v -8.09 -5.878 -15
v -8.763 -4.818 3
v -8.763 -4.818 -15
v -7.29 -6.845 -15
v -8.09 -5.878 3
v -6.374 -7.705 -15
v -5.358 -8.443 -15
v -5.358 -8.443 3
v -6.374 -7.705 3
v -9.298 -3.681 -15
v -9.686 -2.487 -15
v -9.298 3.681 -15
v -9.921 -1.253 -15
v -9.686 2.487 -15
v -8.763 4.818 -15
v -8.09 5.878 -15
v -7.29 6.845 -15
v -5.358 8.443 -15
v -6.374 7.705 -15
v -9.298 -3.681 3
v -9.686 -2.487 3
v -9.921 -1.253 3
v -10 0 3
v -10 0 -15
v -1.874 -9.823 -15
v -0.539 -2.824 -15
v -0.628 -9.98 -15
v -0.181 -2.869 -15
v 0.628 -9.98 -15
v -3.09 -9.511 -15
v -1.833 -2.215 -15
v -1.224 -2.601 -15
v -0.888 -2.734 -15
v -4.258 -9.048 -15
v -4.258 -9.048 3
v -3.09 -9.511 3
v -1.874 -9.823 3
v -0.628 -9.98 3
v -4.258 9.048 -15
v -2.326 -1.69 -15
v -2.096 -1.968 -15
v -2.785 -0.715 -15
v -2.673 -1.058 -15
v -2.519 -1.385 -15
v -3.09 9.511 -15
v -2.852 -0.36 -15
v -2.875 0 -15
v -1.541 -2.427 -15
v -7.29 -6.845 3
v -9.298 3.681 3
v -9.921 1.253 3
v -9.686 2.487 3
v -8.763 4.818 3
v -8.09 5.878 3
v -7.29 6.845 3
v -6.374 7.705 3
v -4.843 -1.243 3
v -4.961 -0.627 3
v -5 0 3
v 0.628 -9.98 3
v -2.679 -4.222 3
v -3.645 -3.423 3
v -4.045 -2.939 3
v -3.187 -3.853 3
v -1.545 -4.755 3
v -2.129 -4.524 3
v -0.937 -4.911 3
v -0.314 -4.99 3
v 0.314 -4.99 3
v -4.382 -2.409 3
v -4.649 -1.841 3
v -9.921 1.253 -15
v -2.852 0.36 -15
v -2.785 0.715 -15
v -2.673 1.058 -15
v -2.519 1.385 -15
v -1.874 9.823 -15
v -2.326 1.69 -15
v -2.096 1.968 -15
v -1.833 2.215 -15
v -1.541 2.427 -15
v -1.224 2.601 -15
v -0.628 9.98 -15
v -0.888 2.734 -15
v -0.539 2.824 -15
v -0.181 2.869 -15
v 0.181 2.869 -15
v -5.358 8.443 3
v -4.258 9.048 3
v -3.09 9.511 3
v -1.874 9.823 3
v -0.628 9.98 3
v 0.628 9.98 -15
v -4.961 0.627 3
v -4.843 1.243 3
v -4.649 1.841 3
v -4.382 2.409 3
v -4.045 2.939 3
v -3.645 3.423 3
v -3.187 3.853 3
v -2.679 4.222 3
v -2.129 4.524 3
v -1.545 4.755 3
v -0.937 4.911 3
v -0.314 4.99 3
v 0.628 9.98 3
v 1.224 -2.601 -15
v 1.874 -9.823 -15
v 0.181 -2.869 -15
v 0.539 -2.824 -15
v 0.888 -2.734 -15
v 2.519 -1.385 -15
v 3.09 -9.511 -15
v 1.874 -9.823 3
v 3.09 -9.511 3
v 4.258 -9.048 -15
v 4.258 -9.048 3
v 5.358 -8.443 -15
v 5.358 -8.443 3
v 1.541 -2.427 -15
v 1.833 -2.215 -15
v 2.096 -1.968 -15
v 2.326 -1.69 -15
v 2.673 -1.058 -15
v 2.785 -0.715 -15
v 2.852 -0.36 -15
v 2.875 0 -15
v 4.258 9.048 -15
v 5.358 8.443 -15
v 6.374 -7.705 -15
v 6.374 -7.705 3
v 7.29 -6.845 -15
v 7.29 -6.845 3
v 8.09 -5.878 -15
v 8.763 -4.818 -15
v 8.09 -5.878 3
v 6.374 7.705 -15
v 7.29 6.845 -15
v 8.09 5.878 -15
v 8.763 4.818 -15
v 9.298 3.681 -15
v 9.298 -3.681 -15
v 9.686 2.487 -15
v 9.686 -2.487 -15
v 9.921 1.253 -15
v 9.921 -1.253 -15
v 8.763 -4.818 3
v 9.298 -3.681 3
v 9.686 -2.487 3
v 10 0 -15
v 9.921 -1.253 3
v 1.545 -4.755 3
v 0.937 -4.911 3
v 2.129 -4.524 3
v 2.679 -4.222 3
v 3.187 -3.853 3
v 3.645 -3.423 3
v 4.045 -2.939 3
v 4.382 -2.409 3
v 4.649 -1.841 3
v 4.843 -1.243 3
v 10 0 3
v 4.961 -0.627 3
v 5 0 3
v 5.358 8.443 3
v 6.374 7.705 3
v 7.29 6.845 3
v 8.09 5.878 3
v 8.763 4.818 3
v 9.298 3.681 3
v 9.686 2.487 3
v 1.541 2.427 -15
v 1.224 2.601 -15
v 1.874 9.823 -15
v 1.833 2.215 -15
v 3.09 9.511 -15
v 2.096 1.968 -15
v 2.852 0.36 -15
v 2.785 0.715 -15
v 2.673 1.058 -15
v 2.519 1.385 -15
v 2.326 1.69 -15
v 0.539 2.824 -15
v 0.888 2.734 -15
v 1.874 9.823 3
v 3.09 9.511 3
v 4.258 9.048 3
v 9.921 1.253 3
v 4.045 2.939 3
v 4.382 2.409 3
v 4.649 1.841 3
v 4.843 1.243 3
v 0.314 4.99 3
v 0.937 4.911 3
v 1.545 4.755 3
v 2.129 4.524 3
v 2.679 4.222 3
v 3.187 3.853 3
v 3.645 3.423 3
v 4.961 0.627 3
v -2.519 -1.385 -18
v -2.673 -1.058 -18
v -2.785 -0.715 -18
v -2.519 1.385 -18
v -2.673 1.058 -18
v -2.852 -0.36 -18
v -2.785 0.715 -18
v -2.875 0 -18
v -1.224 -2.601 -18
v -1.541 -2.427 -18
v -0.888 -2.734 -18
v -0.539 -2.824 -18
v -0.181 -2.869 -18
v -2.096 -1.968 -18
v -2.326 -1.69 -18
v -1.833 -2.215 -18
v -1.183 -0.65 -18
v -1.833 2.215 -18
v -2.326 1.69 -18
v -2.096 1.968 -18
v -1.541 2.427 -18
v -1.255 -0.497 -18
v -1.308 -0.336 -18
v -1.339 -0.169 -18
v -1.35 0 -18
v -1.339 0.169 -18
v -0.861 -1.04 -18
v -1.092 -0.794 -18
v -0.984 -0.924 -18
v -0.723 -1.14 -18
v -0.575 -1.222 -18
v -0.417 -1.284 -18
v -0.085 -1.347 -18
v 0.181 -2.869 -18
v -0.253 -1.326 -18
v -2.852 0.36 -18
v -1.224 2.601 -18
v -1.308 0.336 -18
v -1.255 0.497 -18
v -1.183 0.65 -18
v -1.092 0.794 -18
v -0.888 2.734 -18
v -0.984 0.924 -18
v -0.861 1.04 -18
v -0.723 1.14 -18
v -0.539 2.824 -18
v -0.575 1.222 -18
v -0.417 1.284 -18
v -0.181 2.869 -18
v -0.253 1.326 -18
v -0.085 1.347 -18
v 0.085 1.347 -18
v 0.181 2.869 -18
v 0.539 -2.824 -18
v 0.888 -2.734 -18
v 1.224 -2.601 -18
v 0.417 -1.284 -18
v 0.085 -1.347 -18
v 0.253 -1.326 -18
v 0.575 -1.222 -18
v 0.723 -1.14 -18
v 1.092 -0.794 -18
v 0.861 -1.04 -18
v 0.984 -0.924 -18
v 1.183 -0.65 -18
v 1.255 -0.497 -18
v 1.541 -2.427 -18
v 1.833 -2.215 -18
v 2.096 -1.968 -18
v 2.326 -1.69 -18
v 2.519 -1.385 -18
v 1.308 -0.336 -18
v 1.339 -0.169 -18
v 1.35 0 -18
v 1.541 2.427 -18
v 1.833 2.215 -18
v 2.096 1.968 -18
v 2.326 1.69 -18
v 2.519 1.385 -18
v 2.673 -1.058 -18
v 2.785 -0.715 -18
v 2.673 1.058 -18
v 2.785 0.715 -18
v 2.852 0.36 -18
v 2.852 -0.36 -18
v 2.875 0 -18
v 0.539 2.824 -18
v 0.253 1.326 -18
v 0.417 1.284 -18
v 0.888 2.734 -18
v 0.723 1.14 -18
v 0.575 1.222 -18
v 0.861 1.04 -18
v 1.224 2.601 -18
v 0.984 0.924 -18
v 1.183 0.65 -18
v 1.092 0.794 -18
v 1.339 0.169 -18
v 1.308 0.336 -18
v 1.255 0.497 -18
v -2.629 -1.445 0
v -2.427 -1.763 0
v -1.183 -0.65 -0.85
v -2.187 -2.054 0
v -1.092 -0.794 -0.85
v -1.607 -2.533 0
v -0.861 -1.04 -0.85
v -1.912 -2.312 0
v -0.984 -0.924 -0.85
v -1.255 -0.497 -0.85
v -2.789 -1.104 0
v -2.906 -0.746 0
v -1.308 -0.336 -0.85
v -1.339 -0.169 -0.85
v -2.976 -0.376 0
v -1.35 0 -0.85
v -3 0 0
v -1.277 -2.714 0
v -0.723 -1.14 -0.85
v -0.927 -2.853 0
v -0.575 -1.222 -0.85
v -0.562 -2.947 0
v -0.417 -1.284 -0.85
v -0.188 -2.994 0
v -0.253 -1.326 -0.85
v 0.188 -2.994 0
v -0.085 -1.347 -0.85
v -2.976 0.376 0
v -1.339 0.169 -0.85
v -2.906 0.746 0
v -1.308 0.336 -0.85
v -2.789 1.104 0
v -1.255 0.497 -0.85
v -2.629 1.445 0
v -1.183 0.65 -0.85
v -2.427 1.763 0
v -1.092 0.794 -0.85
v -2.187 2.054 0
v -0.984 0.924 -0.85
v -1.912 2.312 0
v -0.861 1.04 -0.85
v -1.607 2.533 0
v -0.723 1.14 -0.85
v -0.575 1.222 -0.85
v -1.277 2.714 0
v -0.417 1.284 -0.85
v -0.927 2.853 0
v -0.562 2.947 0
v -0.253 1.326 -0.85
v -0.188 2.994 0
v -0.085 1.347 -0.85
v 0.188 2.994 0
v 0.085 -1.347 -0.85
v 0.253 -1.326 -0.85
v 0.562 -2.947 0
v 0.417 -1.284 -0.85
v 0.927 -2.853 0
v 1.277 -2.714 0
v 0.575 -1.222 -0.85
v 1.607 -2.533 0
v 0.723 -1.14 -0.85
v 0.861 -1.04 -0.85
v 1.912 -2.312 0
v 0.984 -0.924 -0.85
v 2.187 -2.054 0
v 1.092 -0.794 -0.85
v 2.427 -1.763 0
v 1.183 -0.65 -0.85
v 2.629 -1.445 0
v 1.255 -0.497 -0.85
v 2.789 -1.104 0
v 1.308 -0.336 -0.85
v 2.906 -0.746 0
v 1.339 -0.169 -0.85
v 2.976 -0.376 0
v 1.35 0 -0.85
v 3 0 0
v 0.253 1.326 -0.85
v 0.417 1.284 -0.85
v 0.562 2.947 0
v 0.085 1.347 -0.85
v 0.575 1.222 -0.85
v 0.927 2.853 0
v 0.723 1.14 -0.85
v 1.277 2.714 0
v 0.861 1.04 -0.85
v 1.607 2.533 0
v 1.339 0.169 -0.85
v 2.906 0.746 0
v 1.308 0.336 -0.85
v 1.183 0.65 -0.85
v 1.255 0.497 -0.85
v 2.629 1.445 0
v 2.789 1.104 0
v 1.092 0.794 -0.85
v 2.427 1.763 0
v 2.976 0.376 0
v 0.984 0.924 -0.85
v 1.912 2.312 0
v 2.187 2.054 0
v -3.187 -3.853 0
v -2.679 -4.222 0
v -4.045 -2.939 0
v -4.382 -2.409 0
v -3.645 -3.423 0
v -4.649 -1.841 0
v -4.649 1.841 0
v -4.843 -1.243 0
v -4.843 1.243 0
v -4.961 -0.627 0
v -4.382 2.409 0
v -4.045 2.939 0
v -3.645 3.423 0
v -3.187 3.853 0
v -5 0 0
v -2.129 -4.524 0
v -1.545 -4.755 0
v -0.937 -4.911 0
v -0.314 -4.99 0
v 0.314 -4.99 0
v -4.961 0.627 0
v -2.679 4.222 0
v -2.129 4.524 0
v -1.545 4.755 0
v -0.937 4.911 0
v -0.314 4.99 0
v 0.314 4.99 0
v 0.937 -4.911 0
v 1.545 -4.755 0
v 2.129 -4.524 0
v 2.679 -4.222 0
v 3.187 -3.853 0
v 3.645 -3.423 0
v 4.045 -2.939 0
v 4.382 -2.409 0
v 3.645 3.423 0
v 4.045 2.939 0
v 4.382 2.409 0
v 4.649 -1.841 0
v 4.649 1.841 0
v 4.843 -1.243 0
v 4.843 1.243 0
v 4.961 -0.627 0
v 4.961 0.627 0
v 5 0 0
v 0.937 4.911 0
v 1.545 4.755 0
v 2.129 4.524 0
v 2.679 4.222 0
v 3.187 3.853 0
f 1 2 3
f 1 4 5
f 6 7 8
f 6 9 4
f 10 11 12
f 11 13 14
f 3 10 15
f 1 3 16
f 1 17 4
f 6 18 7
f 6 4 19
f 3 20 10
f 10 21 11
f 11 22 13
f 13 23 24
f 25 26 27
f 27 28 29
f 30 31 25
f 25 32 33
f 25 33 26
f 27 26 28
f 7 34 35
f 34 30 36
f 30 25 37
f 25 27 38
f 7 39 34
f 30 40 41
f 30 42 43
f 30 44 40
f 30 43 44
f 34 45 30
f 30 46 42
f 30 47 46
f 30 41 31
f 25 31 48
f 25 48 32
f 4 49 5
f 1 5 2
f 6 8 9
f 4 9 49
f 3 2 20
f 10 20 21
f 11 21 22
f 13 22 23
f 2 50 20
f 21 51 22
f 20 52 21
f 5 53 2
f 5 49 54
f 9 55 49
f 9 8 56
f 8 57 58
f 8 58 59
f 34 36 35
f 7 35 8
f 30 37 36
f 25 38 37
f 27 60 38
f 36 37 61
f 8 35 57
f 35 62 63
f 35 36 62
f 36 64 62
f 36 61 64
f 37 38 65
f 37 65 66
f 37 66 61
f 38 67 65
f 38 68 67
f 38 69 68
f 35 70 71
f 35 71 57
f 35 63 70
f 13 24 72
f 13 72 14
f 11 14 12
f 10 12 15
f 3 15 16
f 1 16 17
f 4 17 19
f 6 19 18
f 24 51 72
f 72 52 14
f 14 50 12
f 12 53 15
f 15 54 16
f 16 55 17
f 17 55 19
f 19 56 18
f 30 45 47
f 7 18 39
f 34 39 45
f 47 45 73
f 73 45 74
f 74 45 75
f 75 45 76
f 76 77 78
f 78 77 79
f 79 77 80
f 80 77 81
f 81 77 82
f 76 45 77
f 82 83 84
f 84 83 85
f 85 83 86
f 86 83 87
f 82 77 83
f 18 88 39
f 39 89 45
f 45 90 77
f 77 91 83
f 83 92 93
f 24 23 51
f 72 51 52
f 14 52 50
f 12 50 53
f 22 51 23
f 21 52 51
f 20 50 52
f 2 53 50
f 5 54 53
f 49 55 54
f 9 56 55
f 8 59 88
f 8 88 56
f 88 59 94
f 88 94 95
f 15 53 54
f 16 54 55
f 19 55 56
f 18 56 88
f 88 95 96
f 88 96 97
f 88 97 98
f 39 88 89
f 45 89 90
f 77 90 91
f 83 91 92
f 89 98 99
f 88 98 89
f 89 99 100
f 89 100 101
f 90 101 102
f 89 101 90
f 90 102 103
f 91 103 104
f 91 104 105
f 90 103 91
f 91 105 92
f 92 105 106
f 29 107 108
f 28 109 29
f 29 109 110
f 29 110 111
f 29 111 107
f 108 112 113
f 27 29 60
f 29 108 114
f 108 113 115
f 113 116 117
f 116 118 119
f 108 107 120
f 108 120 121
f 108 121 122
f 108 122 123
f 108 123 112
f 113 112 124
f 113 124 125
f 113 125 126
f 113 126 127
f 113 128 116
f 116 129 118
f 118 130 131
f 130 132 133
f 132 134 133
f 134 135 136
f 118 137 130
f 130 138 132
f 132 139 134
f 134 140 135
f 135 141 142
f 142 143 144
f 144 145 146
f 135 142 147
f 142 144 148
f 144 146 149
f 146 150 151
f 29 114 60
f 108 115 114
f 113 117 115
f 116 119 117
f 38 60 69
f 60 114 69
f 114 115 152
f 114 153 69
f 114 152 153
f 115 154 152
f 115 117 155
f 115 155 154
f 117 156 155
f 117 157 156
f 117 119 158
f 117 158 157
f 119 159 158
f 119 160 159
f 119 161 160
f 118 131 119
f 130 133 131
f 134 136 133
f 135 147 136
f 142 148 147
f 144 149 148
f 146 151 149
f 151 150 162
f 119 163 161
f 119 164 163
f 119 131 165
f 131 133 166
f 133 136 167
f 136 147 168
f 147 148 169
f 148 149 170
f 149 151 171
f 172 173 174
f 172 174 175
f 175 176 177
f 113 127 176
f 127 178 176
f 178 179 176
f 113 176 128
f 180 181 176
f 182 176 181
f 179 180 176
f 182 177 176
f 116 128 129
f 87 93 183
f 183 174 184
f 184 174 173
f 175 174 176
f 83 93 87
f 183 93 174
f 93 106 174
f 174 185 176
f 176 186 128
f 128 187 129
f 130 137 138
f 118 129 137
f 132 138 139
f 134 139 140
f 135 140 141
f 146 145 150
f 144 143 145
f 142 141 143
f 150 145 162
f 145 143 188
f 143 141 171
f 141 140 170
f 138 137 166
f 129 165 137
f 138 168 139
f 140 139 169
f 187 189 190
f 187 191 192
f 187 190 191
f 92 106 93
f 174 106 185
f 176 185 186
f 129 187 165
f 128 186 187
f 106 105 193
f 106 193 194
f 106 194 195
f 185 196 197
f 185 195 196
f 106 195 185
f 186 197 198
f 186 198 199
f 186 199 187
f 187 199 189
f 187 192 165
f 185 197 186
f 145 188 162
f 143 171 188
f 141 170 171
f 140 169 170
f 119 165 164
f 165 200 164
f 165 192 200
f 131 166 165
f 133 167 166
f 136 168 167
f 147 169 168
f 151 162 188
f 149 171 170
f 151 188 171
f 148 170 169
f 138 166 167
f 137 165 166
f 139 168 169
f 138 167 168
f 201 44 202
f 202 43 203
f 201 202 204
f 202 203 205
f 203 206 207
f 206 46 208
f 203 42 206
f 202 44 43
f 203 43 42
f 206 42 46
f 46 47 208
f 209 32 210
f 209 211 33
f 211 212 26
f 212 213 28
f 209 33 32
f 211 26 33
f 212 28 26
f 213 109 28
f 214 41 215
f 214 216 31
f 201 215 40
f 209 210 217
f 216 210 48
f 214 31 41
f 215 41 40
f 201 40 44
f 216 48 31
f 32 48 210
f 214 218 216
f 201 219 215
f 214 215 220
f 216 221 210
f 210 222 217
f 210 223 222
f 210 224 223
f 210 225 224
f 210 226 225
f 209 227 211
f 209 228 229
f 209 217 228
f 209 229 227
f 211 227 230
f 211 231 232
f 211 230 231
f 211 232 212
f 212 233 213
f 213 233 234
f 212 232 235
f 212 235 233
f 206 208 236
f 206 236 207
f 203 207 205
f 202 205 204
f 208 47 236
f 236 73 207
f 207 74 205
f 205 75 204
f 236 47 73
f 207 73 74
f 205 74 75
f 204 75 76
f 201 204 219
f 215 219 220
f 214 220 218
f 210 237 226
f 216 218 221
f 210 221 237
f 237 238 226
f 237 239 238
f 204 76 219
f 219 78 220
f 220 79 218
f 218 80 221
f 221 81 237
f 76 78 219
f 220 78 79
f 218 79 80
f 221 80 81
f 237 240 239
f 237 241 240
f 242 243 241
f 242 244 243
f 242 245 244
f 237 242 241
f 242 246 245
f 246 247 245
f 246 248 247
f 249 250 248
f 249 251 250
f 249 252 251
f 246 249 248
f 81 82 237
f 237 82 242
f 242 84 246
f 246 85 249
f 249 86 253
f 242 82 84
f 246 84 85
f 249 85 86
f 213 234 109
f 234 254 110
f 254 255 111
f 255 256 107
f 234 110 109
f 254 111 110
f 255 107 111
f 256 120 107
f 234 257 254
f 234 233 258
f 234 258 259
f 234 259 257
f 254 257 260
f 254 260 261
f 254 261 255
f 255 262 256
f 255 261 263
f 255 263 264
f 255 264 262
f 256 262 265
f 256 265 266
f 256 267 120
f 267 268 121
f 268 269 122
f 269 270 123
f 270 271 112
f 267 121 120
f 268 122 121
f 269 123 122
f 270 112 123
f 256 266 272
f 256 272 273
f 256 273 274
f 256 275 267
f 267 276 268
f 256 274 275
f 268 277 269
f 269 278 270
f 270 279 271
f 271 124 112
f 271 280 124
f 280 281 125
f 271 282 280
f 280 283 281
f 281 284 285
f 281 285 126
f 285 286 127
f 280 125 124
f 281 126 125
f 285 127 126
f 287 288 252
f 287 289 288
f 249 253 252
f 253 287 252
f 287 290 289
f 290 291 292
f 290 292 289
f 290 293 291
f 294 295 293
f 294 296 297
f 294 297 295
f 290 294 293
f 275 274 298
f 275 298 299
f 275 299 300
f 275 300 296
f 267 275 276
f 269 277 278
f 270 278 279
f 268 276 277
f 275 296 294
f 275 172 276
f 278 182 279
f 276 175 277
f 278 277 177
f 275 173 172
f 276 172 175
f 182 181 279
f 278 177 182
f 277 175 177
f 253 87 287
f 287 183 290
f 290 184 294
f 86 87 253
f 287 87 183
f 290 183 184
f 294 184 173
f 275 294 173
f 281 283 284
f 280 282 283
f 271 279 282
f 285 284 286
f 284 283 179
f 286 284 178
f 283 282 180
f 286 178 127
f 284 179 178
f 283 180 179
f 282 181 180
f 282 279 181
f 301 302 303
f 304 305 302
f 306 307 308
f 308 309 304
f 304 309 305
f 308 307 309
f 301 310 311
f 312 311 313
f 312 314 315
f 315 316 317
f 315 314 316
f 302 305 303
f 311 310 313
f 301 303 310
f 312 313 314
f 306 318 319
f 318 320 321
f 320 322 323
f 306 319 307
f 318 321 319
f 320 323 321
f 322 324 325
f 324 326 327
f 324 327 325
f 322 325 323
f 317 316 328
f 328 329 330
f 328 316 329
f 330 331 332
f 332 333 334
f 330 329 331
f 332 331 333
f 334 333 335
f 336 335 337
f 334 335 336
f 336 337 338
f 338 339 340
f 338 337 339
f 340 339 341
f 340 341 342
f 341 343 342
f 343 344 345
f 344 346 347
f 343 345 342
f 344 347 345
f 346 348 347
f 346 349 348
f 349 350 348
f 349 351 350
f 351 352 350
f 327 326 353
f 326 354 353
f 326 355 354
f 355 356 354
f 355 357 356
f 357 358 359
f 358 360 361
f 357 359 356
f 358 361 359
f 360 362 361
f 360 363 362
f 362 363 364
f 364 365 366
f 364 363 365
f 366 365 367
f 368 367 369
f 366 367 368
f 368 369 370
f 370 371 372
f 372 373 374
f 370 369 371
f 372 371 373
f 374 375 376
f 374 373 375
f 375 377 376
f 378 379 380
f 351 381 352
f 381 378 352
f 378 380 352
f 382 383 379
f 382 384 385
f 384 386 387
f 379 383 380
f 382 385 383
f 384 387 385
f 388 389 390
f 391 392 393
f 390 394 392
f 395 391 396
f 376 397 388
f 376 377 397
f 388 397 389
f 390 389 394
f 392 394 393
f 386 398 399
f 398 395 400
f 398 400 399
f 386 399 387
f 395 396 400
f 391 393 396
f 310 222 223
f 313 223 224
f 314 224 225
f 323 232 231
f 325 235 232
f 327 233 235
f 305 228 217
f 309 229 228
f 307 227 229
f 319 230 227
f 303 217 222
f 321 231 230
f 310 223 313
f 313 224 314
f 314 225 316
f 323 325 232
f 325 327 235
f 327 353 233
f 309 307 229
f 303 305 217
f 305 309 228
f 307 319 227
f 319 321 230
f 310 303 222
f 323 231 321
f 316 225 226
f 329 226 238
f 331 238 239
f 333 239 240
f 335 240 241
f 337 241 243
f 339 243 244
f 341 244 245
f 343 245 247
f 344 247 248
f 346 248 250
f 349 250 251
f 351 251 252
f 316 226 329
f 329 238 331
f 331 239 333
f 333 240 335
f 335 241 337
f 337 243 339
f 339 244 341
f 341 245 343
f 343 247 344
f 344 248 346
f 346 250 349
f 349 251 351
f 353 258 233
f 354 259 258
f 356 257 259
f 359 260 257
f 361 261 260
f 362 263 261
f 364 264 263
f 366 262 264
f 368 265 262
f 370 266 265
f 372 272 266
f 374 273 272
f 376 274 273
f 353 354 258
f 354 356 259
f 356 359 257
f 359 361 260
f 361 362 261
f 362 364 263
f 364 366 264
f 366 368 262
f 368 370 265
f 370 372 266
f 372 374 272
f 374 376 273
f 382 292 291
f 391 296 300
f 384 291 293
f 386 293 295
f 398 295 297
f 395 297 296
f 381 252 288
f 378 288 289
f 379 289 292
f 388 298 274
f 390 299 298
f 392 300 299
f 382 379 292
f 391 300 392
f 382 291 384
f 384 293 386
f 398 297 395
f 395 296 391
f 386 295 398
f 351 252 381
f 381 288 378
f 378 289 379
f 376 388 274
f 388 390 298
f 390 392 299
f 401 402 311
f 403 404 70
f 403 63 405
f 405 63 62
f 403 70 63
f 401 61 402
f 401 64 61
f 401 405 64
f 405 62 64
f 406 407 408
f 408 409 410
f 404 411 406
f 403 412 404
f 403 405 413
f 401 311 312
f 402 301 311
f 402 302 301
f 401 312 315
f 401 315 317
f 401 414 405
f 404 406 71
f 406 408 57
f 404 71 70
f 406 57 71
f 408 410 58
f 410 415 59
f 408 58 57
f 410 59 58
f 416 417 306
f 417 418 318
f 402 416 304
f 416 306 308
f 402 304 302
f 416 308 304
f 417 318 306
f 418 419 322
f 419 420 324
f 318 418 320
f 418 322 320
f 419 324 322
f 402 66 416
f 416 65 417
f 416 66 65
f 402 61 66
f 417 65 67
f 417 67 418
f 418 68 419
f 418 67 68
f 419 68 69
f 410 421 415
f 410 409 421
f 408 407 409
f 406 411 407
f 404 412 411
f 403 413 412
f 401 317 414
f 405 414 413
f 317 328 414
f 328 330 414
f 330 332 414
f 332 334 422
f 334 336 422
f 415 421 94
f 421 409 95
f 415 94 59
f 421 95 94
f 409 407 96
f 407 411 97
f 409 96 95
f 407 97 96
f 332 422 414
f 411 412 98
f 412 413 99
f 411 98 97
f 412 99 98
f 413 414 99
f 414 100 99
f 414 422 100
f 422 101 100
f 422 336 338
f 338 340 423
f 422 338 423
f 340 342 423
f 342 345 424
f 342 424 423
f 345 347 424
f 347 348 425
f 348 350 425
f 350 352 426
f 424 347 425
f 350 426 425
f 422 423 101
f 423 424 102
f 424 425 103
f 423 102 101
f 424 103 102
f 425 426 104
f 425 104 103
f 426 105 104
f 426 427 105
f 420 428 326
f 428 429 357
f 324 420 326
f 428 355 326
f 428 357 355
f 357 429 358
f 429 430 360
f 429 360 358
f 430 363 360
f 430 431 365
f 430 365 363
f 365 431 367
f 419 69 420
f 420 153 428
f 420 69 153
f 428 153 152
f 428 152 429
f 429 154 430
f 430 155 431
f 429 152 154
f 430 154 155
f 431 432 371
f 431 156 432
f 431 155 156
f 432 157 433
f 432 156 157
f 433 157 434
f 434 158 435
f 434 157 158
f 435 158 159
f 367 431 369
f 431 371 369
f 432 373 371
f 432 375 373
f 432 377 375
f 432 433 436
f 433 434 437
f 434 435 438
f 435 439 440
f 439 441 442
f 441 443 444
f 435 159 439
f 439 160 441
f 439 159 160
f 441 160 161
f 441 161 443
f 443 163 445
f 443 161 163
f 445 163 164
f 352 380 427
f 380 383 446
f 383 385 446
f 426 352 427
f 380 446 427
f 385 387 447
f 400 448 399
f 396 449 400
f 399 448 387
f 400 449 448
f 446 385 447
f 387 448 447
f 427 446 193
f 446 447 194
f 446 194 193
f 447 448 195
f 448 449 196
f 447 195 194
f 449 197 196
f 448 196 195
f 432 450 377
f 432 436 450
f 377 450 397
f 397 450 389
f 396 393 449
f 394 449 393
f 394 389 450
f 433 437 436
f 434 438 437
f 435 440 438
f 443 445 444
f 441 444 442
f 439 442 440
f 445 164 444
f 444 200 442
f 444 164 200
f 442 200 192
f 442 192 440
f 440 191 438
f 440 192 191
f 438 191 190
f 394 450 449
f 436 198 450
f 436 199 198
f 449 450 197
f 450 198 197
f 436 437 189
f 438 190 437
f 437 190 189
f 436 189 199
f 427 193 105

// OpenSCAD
$fn = 50;

difference() {
	union() {
		translate(v = [0, 0, -15.0]) {
			cylinder(h = 18, r = 10.0);
		}
		#translate(v = [0, 0, -18.0]) {
			cylinder(h = 18, r = 2.875);
		}
	}
	union() {
		translate(v = [0, 0, 0]) {
			rotate(a = [0, 0, 0]) {
				difference() {
					union() {
						translate(v = [0, 0, -18.0]) {
							cylinder(h = 18, r = 1.0);
						}
						translate(v = [0, 0, -0.85]) {
							cylinder(h = 0.85, r1 = 1.35, r2 = 3.0);
						}
						translate(v = [0, 0, -18.0]) {
							cylinder(h = 18, r = 1.35);
						}
						translate(v = [0, 0, -18.0]) {
							cylinder(h = 18, r = 1.0);
						}
					}
					union();
				}
			}
		}
		#cylinder(h = 3, r = 5.0);
	}
}
